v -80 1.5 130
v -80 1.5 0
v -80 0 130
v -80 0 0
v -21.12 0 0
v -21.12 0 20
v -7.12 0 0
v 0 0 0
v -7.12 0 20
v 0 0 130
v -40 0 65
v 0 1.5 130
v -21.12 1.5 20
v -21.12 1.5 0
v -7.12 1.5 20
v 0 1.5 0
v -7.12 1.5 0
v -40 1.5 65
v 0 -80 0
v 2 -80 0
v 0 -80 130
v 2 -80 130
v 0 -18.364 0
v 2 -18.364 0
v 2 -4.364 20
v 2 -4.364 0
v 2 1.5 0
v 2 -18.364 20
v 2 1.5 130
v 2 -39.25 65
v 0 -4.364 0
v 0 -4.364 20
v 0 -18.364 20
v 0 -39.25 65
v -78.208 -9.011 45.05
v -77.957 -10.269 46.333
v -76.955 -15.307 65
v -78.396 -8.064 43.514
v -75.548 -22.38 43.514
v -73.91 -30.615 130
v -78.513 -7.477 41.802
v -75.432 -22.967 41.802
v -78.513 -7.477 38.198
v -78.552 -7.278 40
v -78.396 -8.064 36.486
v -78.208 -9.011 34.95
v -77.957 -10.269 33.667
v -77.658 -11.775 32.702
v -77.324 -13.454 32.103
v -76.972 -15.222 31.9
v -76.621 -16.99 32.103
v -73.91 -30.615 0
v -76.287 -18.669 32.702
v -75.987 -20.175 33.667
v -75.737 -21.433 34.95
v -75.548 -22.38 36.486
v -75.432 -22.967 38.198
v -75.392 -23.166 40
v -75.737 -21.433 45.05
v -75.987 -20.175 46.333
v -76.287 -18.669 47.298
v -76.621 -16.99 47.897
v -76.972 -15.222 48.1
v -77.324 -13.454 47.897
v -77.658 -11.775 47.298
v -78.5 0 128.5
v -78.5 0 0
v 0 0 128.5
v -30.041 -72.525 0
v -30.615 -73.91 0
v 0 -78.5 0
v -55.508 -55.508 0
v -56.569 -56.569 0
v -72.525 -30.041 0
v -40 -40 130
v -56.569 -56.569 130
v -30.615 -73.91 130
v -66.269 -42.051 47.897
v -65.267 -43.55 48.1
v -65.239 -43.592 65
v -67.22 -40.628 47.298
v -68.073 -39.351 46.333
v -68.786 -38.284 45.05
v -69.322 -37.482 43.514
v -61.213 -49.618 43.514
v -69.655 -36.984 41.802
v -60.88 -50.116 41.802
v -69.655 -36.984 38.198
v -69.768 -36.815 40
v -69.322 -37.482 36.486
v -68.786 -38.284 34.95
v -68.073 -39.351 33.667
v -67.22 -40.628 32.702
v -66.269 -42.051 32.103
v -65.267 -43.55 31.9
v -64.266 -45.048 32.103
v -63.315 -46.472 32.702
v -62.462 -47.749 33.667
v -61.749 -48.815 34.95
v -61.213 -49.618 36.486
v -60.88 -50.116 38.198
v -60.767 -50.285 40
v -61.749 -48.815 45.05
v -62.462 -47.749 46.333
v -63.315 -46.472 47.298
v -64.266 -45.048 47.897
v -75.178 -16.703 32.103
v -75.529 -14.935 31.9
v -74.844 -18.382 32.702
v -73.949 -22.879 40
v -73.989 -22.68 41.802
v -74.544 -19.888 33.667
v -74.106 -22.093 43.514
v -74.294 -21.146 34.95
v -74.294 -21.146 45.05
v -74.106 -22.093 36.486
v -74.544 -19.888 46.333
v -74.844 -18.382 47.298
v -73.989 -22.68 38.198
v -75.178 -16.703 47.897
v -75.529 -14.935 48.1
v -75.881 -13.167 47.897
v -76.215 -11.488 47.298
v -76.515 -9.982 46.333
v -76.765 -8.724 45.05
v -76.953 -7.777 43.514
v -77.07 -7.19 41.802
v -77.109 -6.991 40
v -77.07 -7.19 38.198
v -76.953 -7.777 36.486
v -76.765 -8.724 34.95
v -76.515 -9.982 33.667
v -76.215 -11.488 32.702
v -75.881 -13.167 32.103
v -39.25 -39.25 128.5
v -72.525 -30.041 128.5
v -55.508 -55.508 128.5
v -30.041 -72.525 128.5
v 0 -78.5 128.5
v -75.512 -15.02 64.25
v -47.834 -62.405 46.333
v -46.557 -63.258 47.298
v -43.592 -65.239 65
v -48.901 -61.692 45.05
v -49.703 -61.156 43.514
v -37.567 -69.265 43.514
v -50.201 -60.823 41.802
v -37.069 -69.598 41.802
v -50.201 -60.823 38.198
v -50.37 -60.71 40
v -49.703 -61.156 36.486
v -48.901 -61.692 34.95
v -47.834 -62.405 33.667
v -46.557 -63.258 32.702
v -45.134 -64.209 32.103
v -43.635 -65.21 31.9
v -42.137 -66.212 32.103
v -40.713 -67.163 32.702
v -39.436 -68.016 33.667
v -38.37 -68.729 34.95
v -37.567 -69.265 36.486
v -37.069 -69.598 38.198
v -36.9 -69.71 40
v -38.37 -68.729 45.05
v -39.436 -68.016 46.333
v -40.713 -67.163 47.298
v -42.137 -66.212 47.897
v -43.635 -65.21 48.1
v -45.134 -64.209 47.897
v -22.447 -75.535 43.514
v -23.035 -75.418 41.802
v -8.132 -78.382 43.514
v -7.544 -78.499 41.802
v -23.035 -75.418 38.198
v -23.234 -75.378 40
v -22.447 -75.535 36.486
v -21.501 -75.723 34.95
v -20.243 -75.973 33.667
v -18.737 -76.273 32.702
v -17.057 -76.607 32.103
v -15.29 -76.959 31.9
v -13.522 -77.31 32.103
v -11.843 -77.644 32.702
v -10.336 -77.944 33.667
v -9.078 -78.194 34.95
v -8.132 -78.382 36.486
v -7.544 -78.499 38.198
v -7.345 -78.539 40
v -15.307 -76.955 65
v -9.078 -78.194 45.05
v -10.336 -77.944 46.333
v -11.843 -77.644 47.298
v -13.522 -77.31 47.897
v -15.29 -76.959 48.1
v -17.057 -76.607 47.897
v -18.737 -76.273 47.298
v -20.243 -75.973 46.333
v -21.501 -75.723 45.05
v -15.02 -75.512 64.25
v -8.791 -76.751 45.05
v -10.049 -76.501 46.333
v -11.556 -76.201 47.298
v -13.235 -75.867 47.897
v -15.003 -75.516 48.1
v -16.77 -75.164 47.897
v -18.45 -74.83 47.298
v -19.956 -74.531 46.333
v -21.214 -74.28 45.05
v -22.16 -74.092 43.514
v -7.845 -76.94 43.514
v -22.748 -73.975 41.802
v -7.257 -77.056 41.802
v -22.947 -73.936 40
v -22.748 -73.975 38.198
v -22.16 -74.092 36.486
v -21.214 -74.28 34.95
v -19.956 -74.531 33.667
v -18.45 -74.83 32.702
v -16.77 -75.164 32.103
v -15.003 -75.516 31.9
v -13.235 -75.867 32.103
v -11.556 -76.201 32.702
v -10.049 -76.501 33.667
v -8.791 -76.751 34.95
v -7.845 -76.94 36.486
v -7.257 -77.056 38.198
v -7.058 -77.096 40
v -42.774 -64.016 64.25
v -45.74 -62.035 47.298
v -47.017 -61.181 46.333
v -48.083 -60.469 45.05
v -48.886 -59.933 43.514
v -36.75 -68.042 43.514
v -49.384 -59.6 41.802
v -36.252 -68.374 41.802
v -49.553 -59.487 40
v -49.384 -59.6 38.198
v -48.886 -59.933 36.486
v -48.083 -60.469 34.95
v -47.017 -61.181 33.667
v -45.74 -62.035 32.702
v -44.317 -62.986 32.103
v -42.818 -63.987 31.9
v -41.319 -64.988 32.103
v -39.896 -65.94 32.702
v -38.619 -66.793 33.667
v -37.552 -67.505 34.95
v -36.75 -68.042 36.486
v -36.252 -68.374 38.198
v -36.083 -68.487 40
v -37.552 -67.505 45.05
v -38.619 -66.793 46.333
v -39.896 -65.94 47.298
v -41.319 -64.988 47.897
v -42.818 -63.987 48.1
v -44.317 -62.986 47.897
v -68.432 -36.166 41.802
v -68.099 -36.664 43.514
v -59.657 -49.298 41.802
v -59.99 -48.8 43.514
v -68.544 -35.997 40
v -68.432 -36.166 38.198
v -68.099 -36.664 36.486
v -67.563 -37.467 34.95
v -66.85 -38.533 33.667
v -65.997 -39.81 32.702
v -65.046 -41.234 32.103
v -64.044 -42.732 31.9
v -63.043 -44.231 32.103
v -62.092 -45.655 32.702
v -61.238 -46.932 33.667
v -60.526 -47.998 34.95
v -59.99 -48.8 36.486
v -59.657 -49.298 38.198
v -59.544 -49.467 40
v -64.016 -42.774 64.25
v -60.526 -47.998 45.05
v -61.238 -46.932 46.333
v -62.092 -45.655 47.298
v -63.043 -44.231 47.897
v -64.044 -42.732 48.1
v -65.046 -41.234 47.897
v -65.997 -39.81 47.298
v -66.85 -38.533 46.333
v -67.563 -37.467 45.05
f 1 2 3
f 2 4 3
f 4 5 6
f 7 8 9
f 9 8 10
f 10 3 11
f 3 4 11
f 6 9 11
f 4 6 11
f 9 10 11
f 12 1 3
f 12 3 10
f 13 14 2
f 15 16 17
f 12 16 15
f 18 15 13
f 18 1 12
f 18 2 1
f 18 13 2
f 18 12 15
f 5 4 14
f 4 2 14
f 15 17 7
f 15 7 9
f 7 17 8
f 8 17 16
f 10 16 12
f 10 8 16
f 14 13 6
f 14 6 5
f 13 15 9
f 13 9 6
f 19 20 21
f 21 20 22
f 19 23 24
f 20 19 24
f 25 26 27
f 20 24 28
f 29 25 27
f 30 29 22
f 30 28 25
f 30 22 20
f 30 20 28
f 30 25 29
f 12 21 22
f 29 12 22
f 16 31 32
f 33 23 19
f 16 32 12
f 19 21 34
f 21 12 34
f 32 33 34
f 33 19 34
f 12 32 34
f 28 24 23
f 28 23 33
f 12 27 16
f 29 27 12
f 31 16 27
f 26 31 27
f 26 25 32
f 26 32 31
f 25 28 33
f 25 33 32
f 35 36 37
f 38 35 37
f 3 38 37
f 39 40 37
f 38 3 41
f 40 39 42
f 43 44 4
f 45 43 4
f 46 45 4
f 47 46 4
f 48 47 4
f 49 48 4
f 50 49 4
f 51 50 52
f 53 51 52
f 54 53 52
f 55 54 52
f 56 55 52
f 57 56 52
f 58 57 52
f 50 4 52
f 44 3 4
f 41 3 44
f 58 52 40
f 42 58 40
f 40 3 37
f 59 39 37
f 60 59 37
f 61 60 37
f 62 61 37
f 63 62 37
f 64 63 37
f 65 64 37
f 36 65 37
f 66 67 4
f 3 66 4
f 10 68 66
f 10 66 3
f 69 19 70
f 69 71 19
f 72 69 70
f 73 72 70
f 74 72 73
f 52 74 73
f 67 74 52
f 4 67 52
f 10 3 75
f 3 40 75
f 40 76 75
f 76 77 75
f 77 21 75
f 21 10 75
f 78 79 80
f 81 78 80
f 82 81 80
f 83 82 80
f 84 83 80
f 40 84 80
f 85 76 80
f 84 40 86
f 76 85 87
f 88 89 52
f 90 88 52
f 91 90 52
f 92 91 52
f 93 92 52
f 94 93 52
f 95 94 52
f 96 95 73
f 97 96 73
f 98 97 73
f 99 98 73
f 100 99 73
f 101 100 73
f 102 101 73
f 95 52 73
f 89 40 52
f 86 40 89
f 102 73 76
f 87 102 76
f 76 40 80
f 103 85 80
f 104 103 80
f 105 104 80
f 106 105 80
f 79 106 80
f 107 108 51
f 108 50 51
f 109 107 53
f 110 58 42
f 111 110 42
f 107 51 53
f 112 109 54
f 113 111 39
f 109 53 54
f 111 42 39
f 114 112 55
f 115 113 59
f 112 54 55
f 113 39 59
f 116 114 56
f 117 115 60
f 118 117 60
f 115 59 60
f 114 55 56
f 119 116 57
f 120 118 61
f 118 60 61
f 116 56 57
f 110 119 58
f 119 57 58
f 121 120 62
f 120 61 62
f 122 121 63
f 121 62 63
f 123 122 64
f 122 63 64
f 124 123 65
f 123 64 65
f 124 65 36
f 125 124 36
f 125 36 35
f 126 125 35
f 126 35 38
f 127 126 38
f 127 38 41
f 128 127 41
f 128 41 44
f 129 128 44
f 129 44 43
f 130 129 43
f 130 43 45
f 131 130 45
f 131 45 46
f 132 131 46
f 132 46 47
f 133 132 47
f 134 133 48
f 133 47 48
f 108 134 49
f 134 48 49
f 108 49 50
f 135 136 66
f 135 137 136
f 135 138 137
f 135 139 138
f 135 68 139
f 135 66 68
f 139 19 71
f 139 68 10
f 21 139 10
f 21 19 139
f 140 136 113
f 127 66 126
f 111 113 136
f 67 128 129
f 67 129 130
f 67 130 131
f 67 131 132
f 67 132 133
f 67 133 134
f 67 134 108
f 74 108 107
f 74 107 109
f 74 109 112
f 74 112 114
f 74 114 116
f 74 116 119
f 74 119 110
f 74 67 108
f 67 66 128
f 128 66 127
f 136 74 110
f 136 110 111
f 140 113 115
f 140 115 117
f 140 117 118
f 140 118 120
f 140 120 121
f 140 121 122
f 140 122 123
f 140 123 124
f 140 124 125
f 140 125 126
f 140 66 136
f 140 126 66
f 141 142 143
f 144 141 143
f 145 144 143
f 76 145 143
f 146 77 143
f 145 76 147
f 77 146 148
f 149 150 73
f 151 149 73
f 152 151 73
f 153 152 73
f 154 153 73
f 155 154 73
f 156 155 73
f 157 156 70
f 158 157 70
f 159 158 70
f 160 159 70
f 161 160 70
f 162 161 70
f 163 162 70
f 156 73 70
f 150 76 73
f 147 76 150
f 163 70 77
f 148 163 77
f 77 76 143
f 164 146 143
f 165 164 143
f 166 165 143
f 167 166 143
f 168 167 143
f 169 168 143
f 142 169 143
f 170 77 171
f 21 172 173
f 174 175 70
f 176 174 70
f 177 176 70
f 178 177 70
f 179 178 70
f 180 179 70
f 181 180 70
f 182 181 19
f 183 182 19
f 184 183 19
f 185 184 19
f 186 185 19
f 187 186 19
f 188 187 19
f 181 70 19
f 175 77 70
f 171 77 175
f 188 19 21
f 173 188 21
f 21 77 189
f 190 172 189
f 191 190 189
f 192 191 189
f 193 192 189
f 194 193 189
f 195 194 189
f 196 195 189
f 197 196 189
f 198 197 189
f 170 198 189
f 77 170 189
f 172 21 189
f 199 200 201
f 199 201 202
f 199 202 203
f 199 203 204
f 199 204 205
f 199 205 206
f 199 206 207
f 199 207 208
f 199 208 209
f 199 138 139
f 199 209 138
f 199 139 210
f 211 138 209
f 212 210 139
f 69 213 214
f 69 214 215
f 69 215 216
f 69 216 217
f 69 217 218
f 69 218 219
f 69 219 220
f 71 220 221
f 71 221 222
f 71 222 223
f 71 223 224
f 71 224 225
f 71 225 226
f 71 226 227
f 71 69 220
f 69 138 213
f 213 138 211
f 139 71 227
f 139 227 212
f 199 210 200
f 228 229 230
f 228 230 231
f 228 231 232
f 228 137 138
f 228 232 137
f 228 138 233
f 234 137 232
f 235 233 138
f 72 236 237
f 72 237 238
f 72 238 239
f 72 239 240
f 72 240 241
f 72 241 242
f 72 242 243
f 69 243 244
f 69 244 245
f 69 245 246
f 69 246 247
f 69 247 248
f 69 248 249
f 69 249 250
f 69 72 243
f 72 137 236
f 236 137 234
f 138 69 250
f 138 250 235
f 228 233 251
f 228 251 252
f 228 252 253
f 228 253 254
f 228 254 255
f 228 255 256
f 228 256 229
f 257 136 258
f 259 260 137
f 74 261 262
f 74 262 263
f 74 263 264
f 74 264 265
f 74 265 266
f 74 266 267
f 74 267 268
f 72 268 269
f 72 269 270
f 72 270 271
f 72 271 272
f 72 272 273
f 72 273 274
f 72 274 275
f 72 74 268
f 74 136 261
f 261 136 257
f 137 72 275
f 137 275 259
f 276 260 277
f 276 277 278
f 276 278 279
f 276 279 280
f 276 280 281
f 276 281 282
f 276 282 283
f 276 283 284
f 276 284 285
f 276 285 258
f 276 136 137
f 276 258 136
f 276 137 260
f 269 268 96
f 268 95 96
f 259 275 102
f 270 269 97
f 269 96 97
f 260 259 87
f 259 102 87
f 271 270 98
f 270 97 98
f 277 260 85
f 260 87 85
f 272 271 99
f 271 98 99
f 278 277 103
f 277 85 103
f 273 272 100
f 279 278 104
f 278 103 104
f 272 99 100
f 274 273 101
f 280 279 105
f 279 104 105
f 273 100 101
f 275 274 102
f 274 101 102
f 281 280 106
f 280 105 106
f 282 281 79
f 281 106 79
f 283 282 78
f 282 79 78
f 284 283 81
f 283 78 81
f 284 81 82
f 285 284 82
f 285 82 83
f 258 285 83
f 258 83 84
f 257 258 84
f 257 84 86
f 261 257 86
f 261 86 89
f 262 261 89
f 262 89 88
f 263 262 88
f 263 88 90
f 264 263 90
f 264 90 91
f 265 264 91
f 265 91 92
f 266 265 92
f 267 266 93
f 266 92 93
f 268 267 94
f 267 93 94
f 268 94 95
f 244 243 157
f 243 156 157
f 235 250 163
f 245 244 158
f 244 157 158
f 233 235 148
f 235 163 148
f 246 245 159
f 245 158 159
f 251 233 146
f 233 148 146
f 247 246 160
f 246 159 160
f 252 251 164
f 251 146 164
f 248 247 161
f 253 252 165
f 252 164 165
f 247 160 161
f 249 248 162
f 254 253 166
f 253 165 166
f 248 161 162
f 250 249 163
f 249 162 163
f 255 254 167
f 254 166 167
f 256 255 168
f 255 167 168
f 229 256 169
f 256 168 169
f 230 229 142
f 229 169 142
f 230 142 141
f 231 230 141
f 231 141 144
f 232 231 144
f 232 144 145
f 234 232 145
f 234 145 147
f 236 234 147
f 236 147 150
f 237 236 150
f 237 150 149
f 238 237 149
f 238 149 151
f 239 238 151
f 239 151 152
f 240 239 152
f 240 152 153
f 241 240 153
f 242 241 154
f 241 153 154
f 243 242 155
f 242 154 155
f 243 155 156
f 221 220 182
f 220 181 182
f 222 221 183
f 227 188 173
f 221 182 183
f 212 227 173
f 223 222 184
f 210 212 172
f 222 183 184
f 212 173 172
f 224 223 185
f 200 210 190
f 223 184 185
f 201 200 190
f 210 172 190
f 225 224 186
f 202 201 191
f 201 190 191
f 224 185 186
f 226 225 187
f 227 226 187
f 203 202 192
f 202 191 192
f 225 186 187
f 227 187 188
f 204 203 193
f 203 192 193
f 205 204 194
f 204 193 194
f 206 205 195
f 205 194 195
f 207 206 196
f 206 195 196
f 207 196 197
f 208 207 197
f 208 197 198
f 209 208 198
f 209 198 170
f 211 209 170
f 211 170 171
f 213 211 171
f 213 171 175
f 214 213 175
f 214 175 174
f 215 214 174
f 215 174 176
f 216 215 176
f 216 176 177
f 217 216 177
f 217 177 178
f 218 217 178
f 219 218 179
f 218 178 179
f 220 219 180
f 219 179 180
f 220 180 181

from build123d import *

# Parameters (mm, degrees)
BOX001_W        = 90
BOX001_H        = 90
BOX001_DEPTH    = 130
BOX_W           = 90
BOX_H           = 180
BOX_DEPTH       = 130
PRISM001_DEPTH  = 128.5
PRISM_DEPTH     = 130
SKETCH001_R     = 8.1
POCKET_DEPTH    = 3
SKETCH002_R     = 8.1
POCKET001_DEPTH = 3
SKETCH003_R     = 8.1
POCKET002_DEPTH = 3
SKETCH004_R     = 8.1
POCKET003_DEPTH = 3
BOX003_W        = 2
BOX003_H        = 81.5
BOX003_DEPTH    = 130
SKETCH005_W     = 14
SKETCH005_H     = 20
POCKET004_DEPTH = 3
BOX002_W        = 80
BOX002_H        = 1.5
BOX002_DEPTH    = 130
SKETCH006_W     = 14
SKETCH006_H     = 20
POCKET005_DEPTH = 2


with BuildPart() as cubo001:
    # Box001 → Box001 (new body)
    with BuildSketch(Plane(origin=(-90, 0, 0), x_dir=(1, 0, 0), z_dir=(0, 0, 1))):
        with Locations((45, 45)):
            Rectangle(BOX001_W, BOX001_H)
    extrude(amount=BOX001_DEPTH)


with BuildPart() as cubo:
    # Box → Box (new body)
    with BuildSketch(Plane(origin=(0, -90, 0), x_dir=(1, 0, 0), z_dir=(0, 0, 1))):
        with Locations((45, 90)):
            Rectangle(BOX_W, BOX_H)
    extrude(amount=BOX_DEPTH)


with BuildPart() as prisma001:
    # Prism001 → Prism001 (new body)
    with BuildSketch(Plane.XY):
        Polygon((78.5, 0), (72.5245433021, 30.0406494407), (55.5078823231, 55.5078823231), (30.0406494407, 72.5245433021), (0, 78.5), (-30.0406494407, 72.5245433021), (-55.5078823231, 55.5078823231), (-72.5245433021, 30.0406494407), (-78.5, 0), (-72.5245433021, -30.0406494407), (-55.5078823231, -55.5078823231), (-30.0406494407, -72.5245433021), (0, -78.5), (30.0406494407, -72.5245433021), (55.5078823231, -55.5078823231), (72.5245433021, -30.0406494407), align=None)
    extrude(amount=PRISM001_DEPTH)


with BuildPart() as pocket003:
    # Prism → Prism (new body)
    with BuildSketch(Plane.XY):
        Polygon((80, 0), (73.9103626009, 30.6146745892), (56.5685424949, 56.5685424949), (30.6146745892, 73.9103626009), (0, 80), (-30.6146745892, 73.9103626009), (-56.5685424949, 56.5685424949), (-73.9103626009, 30.6146745892), (-80, 0), (-73.9103626009, -30.6146745892), (-56.5685424949, -56.5685424949), (-30.6146745892, -73.9103626009), (0, -80), (30.6146745892, -73.9103626009), (56.5685424949, -56.5685424949), (73.9103626009, -30.6146745892), align=None)
    extrude(amount=PRISM_DEPTH)

    # Cut: cut Prisma001
    add(prisma001.part, mode=Mode.SUBTRACT)

    # Cut001: cut Cubo
    add(cubo.part, mode=Mode.SUBTRACT)

    # Cut002: cut Cubo001
    add(cubo001.part, mode=Mode.SUBTRACT)

    # Sketch001 → Pocket (cut)
    with BuildSketch(Plane(origin=(-76.9551813005, -15.3073372946, 0), x_dir=(0.195090322, -0.9807852804, 0), z_dir=(-0.9807852804, -0.195090322, 0))):
        with Locations((-0.087106, 40)):
            Circle(SKETCH001_R)
    extrude(amount=-POCKET_DEPTH, mode=Mode.SUBTRACT)

    # Sketch002 → Pocket001 (cut)
    with BuildSketch(Plane(origin=(-65.2394525479, -43.5916085421, 0), x_dir=(0.555570233, -0.8314696123, 0), z_dir=(-0.8314696123, -0.555570233, 0))):
        with Locations((-0.050397, 40)):
            Circle(SKETCH002_R)
    extrude(amount=-POCKET001_DEPTH, mode=Mode.SUBTRACT)

    # Sketch003 → Pocket002 (cut)
    with BuildSketch(Plane(origin=(-43.5916085421, -65.2394525479, 0), x_dir=(0.8314696123, -0.555570233, 0), z_dir=(-0.555570233, -0.8314696123, 0))):
        with Locations((-0.05246, 40)):
            Circle(SKETCH003_R)
    extrude(amount=-POCKET002_DEPTH, mode=Mode.SUBTRACT)

    # Sketch004 → Pocket003 (cut)
    with BuildSketch(Plane(origin=(-15.3073372946, -76.9551813005, 0), x_dir=(0.9807852804, -0.195090322, 0), z_dir=(-0.195090322, -0.9807852804, 0))):
        with Locations((0.018064, 40)):
            Circle(SKETCH004_R)
    extrude(amount=-POCKET003_DEPTH, mode=Mode.SUBTRACT)


with BuildPart() as pocket004:
    # Box003 → Box003 (new body)
    with BuildSketch(Plane(origin=(0, -80, 0), x_dir=(1, 0, 0), z_dir=(0, 0, 1))):
        with Locations((1, 40.75)):
            Rectangle(BOX003_W, BOX003_H)
    extrude(amount=BOX003_DEPTH)

    # Sketch005 → Pocket004 (cut)
    with BuildSketch(Plane(origin=(2, -80, 0), x_dir=(0, 1, 0), z_dir=(1, 0, 0))):
        with Locations((68.6361033238, 10)):
            Rectangle(SKETCH005_W, SKETCH005_H)
    extrude(amount=-POCKET004_DEPTH, mode=Mode.SUBTRACT)


with BuildPart() as pocket005:
    # Box002 → Box002 (new body)
    with BuildSketch(Plane(origin=(-80, 0, 0), x_dir=(1, 0, 0), z_dir=(0, 0, 1))):
        with Locations((40, 0.75)):
            Rectangle(BOX002_W, BOX002_H)
    extrude(amount=BOX002_DEPTH)

    # Sketch006 → Pocket005 (cut)
    with BuildSketch(Plane(origin=(-80, 1.5, 0), x_dir=(-1, 0, 0), z_dir=(0, 1, 0))):
        with Locations((-65.8796411845, 10)):
            Rectangle(SKETCH006_W, SKETCH006_H)
    extrude(amount=-POCKET005_DEPTH, mode=Mode.SUBTRACT)


solid = Compound([pocket003.part, pocket004.part, pocket005.part])
